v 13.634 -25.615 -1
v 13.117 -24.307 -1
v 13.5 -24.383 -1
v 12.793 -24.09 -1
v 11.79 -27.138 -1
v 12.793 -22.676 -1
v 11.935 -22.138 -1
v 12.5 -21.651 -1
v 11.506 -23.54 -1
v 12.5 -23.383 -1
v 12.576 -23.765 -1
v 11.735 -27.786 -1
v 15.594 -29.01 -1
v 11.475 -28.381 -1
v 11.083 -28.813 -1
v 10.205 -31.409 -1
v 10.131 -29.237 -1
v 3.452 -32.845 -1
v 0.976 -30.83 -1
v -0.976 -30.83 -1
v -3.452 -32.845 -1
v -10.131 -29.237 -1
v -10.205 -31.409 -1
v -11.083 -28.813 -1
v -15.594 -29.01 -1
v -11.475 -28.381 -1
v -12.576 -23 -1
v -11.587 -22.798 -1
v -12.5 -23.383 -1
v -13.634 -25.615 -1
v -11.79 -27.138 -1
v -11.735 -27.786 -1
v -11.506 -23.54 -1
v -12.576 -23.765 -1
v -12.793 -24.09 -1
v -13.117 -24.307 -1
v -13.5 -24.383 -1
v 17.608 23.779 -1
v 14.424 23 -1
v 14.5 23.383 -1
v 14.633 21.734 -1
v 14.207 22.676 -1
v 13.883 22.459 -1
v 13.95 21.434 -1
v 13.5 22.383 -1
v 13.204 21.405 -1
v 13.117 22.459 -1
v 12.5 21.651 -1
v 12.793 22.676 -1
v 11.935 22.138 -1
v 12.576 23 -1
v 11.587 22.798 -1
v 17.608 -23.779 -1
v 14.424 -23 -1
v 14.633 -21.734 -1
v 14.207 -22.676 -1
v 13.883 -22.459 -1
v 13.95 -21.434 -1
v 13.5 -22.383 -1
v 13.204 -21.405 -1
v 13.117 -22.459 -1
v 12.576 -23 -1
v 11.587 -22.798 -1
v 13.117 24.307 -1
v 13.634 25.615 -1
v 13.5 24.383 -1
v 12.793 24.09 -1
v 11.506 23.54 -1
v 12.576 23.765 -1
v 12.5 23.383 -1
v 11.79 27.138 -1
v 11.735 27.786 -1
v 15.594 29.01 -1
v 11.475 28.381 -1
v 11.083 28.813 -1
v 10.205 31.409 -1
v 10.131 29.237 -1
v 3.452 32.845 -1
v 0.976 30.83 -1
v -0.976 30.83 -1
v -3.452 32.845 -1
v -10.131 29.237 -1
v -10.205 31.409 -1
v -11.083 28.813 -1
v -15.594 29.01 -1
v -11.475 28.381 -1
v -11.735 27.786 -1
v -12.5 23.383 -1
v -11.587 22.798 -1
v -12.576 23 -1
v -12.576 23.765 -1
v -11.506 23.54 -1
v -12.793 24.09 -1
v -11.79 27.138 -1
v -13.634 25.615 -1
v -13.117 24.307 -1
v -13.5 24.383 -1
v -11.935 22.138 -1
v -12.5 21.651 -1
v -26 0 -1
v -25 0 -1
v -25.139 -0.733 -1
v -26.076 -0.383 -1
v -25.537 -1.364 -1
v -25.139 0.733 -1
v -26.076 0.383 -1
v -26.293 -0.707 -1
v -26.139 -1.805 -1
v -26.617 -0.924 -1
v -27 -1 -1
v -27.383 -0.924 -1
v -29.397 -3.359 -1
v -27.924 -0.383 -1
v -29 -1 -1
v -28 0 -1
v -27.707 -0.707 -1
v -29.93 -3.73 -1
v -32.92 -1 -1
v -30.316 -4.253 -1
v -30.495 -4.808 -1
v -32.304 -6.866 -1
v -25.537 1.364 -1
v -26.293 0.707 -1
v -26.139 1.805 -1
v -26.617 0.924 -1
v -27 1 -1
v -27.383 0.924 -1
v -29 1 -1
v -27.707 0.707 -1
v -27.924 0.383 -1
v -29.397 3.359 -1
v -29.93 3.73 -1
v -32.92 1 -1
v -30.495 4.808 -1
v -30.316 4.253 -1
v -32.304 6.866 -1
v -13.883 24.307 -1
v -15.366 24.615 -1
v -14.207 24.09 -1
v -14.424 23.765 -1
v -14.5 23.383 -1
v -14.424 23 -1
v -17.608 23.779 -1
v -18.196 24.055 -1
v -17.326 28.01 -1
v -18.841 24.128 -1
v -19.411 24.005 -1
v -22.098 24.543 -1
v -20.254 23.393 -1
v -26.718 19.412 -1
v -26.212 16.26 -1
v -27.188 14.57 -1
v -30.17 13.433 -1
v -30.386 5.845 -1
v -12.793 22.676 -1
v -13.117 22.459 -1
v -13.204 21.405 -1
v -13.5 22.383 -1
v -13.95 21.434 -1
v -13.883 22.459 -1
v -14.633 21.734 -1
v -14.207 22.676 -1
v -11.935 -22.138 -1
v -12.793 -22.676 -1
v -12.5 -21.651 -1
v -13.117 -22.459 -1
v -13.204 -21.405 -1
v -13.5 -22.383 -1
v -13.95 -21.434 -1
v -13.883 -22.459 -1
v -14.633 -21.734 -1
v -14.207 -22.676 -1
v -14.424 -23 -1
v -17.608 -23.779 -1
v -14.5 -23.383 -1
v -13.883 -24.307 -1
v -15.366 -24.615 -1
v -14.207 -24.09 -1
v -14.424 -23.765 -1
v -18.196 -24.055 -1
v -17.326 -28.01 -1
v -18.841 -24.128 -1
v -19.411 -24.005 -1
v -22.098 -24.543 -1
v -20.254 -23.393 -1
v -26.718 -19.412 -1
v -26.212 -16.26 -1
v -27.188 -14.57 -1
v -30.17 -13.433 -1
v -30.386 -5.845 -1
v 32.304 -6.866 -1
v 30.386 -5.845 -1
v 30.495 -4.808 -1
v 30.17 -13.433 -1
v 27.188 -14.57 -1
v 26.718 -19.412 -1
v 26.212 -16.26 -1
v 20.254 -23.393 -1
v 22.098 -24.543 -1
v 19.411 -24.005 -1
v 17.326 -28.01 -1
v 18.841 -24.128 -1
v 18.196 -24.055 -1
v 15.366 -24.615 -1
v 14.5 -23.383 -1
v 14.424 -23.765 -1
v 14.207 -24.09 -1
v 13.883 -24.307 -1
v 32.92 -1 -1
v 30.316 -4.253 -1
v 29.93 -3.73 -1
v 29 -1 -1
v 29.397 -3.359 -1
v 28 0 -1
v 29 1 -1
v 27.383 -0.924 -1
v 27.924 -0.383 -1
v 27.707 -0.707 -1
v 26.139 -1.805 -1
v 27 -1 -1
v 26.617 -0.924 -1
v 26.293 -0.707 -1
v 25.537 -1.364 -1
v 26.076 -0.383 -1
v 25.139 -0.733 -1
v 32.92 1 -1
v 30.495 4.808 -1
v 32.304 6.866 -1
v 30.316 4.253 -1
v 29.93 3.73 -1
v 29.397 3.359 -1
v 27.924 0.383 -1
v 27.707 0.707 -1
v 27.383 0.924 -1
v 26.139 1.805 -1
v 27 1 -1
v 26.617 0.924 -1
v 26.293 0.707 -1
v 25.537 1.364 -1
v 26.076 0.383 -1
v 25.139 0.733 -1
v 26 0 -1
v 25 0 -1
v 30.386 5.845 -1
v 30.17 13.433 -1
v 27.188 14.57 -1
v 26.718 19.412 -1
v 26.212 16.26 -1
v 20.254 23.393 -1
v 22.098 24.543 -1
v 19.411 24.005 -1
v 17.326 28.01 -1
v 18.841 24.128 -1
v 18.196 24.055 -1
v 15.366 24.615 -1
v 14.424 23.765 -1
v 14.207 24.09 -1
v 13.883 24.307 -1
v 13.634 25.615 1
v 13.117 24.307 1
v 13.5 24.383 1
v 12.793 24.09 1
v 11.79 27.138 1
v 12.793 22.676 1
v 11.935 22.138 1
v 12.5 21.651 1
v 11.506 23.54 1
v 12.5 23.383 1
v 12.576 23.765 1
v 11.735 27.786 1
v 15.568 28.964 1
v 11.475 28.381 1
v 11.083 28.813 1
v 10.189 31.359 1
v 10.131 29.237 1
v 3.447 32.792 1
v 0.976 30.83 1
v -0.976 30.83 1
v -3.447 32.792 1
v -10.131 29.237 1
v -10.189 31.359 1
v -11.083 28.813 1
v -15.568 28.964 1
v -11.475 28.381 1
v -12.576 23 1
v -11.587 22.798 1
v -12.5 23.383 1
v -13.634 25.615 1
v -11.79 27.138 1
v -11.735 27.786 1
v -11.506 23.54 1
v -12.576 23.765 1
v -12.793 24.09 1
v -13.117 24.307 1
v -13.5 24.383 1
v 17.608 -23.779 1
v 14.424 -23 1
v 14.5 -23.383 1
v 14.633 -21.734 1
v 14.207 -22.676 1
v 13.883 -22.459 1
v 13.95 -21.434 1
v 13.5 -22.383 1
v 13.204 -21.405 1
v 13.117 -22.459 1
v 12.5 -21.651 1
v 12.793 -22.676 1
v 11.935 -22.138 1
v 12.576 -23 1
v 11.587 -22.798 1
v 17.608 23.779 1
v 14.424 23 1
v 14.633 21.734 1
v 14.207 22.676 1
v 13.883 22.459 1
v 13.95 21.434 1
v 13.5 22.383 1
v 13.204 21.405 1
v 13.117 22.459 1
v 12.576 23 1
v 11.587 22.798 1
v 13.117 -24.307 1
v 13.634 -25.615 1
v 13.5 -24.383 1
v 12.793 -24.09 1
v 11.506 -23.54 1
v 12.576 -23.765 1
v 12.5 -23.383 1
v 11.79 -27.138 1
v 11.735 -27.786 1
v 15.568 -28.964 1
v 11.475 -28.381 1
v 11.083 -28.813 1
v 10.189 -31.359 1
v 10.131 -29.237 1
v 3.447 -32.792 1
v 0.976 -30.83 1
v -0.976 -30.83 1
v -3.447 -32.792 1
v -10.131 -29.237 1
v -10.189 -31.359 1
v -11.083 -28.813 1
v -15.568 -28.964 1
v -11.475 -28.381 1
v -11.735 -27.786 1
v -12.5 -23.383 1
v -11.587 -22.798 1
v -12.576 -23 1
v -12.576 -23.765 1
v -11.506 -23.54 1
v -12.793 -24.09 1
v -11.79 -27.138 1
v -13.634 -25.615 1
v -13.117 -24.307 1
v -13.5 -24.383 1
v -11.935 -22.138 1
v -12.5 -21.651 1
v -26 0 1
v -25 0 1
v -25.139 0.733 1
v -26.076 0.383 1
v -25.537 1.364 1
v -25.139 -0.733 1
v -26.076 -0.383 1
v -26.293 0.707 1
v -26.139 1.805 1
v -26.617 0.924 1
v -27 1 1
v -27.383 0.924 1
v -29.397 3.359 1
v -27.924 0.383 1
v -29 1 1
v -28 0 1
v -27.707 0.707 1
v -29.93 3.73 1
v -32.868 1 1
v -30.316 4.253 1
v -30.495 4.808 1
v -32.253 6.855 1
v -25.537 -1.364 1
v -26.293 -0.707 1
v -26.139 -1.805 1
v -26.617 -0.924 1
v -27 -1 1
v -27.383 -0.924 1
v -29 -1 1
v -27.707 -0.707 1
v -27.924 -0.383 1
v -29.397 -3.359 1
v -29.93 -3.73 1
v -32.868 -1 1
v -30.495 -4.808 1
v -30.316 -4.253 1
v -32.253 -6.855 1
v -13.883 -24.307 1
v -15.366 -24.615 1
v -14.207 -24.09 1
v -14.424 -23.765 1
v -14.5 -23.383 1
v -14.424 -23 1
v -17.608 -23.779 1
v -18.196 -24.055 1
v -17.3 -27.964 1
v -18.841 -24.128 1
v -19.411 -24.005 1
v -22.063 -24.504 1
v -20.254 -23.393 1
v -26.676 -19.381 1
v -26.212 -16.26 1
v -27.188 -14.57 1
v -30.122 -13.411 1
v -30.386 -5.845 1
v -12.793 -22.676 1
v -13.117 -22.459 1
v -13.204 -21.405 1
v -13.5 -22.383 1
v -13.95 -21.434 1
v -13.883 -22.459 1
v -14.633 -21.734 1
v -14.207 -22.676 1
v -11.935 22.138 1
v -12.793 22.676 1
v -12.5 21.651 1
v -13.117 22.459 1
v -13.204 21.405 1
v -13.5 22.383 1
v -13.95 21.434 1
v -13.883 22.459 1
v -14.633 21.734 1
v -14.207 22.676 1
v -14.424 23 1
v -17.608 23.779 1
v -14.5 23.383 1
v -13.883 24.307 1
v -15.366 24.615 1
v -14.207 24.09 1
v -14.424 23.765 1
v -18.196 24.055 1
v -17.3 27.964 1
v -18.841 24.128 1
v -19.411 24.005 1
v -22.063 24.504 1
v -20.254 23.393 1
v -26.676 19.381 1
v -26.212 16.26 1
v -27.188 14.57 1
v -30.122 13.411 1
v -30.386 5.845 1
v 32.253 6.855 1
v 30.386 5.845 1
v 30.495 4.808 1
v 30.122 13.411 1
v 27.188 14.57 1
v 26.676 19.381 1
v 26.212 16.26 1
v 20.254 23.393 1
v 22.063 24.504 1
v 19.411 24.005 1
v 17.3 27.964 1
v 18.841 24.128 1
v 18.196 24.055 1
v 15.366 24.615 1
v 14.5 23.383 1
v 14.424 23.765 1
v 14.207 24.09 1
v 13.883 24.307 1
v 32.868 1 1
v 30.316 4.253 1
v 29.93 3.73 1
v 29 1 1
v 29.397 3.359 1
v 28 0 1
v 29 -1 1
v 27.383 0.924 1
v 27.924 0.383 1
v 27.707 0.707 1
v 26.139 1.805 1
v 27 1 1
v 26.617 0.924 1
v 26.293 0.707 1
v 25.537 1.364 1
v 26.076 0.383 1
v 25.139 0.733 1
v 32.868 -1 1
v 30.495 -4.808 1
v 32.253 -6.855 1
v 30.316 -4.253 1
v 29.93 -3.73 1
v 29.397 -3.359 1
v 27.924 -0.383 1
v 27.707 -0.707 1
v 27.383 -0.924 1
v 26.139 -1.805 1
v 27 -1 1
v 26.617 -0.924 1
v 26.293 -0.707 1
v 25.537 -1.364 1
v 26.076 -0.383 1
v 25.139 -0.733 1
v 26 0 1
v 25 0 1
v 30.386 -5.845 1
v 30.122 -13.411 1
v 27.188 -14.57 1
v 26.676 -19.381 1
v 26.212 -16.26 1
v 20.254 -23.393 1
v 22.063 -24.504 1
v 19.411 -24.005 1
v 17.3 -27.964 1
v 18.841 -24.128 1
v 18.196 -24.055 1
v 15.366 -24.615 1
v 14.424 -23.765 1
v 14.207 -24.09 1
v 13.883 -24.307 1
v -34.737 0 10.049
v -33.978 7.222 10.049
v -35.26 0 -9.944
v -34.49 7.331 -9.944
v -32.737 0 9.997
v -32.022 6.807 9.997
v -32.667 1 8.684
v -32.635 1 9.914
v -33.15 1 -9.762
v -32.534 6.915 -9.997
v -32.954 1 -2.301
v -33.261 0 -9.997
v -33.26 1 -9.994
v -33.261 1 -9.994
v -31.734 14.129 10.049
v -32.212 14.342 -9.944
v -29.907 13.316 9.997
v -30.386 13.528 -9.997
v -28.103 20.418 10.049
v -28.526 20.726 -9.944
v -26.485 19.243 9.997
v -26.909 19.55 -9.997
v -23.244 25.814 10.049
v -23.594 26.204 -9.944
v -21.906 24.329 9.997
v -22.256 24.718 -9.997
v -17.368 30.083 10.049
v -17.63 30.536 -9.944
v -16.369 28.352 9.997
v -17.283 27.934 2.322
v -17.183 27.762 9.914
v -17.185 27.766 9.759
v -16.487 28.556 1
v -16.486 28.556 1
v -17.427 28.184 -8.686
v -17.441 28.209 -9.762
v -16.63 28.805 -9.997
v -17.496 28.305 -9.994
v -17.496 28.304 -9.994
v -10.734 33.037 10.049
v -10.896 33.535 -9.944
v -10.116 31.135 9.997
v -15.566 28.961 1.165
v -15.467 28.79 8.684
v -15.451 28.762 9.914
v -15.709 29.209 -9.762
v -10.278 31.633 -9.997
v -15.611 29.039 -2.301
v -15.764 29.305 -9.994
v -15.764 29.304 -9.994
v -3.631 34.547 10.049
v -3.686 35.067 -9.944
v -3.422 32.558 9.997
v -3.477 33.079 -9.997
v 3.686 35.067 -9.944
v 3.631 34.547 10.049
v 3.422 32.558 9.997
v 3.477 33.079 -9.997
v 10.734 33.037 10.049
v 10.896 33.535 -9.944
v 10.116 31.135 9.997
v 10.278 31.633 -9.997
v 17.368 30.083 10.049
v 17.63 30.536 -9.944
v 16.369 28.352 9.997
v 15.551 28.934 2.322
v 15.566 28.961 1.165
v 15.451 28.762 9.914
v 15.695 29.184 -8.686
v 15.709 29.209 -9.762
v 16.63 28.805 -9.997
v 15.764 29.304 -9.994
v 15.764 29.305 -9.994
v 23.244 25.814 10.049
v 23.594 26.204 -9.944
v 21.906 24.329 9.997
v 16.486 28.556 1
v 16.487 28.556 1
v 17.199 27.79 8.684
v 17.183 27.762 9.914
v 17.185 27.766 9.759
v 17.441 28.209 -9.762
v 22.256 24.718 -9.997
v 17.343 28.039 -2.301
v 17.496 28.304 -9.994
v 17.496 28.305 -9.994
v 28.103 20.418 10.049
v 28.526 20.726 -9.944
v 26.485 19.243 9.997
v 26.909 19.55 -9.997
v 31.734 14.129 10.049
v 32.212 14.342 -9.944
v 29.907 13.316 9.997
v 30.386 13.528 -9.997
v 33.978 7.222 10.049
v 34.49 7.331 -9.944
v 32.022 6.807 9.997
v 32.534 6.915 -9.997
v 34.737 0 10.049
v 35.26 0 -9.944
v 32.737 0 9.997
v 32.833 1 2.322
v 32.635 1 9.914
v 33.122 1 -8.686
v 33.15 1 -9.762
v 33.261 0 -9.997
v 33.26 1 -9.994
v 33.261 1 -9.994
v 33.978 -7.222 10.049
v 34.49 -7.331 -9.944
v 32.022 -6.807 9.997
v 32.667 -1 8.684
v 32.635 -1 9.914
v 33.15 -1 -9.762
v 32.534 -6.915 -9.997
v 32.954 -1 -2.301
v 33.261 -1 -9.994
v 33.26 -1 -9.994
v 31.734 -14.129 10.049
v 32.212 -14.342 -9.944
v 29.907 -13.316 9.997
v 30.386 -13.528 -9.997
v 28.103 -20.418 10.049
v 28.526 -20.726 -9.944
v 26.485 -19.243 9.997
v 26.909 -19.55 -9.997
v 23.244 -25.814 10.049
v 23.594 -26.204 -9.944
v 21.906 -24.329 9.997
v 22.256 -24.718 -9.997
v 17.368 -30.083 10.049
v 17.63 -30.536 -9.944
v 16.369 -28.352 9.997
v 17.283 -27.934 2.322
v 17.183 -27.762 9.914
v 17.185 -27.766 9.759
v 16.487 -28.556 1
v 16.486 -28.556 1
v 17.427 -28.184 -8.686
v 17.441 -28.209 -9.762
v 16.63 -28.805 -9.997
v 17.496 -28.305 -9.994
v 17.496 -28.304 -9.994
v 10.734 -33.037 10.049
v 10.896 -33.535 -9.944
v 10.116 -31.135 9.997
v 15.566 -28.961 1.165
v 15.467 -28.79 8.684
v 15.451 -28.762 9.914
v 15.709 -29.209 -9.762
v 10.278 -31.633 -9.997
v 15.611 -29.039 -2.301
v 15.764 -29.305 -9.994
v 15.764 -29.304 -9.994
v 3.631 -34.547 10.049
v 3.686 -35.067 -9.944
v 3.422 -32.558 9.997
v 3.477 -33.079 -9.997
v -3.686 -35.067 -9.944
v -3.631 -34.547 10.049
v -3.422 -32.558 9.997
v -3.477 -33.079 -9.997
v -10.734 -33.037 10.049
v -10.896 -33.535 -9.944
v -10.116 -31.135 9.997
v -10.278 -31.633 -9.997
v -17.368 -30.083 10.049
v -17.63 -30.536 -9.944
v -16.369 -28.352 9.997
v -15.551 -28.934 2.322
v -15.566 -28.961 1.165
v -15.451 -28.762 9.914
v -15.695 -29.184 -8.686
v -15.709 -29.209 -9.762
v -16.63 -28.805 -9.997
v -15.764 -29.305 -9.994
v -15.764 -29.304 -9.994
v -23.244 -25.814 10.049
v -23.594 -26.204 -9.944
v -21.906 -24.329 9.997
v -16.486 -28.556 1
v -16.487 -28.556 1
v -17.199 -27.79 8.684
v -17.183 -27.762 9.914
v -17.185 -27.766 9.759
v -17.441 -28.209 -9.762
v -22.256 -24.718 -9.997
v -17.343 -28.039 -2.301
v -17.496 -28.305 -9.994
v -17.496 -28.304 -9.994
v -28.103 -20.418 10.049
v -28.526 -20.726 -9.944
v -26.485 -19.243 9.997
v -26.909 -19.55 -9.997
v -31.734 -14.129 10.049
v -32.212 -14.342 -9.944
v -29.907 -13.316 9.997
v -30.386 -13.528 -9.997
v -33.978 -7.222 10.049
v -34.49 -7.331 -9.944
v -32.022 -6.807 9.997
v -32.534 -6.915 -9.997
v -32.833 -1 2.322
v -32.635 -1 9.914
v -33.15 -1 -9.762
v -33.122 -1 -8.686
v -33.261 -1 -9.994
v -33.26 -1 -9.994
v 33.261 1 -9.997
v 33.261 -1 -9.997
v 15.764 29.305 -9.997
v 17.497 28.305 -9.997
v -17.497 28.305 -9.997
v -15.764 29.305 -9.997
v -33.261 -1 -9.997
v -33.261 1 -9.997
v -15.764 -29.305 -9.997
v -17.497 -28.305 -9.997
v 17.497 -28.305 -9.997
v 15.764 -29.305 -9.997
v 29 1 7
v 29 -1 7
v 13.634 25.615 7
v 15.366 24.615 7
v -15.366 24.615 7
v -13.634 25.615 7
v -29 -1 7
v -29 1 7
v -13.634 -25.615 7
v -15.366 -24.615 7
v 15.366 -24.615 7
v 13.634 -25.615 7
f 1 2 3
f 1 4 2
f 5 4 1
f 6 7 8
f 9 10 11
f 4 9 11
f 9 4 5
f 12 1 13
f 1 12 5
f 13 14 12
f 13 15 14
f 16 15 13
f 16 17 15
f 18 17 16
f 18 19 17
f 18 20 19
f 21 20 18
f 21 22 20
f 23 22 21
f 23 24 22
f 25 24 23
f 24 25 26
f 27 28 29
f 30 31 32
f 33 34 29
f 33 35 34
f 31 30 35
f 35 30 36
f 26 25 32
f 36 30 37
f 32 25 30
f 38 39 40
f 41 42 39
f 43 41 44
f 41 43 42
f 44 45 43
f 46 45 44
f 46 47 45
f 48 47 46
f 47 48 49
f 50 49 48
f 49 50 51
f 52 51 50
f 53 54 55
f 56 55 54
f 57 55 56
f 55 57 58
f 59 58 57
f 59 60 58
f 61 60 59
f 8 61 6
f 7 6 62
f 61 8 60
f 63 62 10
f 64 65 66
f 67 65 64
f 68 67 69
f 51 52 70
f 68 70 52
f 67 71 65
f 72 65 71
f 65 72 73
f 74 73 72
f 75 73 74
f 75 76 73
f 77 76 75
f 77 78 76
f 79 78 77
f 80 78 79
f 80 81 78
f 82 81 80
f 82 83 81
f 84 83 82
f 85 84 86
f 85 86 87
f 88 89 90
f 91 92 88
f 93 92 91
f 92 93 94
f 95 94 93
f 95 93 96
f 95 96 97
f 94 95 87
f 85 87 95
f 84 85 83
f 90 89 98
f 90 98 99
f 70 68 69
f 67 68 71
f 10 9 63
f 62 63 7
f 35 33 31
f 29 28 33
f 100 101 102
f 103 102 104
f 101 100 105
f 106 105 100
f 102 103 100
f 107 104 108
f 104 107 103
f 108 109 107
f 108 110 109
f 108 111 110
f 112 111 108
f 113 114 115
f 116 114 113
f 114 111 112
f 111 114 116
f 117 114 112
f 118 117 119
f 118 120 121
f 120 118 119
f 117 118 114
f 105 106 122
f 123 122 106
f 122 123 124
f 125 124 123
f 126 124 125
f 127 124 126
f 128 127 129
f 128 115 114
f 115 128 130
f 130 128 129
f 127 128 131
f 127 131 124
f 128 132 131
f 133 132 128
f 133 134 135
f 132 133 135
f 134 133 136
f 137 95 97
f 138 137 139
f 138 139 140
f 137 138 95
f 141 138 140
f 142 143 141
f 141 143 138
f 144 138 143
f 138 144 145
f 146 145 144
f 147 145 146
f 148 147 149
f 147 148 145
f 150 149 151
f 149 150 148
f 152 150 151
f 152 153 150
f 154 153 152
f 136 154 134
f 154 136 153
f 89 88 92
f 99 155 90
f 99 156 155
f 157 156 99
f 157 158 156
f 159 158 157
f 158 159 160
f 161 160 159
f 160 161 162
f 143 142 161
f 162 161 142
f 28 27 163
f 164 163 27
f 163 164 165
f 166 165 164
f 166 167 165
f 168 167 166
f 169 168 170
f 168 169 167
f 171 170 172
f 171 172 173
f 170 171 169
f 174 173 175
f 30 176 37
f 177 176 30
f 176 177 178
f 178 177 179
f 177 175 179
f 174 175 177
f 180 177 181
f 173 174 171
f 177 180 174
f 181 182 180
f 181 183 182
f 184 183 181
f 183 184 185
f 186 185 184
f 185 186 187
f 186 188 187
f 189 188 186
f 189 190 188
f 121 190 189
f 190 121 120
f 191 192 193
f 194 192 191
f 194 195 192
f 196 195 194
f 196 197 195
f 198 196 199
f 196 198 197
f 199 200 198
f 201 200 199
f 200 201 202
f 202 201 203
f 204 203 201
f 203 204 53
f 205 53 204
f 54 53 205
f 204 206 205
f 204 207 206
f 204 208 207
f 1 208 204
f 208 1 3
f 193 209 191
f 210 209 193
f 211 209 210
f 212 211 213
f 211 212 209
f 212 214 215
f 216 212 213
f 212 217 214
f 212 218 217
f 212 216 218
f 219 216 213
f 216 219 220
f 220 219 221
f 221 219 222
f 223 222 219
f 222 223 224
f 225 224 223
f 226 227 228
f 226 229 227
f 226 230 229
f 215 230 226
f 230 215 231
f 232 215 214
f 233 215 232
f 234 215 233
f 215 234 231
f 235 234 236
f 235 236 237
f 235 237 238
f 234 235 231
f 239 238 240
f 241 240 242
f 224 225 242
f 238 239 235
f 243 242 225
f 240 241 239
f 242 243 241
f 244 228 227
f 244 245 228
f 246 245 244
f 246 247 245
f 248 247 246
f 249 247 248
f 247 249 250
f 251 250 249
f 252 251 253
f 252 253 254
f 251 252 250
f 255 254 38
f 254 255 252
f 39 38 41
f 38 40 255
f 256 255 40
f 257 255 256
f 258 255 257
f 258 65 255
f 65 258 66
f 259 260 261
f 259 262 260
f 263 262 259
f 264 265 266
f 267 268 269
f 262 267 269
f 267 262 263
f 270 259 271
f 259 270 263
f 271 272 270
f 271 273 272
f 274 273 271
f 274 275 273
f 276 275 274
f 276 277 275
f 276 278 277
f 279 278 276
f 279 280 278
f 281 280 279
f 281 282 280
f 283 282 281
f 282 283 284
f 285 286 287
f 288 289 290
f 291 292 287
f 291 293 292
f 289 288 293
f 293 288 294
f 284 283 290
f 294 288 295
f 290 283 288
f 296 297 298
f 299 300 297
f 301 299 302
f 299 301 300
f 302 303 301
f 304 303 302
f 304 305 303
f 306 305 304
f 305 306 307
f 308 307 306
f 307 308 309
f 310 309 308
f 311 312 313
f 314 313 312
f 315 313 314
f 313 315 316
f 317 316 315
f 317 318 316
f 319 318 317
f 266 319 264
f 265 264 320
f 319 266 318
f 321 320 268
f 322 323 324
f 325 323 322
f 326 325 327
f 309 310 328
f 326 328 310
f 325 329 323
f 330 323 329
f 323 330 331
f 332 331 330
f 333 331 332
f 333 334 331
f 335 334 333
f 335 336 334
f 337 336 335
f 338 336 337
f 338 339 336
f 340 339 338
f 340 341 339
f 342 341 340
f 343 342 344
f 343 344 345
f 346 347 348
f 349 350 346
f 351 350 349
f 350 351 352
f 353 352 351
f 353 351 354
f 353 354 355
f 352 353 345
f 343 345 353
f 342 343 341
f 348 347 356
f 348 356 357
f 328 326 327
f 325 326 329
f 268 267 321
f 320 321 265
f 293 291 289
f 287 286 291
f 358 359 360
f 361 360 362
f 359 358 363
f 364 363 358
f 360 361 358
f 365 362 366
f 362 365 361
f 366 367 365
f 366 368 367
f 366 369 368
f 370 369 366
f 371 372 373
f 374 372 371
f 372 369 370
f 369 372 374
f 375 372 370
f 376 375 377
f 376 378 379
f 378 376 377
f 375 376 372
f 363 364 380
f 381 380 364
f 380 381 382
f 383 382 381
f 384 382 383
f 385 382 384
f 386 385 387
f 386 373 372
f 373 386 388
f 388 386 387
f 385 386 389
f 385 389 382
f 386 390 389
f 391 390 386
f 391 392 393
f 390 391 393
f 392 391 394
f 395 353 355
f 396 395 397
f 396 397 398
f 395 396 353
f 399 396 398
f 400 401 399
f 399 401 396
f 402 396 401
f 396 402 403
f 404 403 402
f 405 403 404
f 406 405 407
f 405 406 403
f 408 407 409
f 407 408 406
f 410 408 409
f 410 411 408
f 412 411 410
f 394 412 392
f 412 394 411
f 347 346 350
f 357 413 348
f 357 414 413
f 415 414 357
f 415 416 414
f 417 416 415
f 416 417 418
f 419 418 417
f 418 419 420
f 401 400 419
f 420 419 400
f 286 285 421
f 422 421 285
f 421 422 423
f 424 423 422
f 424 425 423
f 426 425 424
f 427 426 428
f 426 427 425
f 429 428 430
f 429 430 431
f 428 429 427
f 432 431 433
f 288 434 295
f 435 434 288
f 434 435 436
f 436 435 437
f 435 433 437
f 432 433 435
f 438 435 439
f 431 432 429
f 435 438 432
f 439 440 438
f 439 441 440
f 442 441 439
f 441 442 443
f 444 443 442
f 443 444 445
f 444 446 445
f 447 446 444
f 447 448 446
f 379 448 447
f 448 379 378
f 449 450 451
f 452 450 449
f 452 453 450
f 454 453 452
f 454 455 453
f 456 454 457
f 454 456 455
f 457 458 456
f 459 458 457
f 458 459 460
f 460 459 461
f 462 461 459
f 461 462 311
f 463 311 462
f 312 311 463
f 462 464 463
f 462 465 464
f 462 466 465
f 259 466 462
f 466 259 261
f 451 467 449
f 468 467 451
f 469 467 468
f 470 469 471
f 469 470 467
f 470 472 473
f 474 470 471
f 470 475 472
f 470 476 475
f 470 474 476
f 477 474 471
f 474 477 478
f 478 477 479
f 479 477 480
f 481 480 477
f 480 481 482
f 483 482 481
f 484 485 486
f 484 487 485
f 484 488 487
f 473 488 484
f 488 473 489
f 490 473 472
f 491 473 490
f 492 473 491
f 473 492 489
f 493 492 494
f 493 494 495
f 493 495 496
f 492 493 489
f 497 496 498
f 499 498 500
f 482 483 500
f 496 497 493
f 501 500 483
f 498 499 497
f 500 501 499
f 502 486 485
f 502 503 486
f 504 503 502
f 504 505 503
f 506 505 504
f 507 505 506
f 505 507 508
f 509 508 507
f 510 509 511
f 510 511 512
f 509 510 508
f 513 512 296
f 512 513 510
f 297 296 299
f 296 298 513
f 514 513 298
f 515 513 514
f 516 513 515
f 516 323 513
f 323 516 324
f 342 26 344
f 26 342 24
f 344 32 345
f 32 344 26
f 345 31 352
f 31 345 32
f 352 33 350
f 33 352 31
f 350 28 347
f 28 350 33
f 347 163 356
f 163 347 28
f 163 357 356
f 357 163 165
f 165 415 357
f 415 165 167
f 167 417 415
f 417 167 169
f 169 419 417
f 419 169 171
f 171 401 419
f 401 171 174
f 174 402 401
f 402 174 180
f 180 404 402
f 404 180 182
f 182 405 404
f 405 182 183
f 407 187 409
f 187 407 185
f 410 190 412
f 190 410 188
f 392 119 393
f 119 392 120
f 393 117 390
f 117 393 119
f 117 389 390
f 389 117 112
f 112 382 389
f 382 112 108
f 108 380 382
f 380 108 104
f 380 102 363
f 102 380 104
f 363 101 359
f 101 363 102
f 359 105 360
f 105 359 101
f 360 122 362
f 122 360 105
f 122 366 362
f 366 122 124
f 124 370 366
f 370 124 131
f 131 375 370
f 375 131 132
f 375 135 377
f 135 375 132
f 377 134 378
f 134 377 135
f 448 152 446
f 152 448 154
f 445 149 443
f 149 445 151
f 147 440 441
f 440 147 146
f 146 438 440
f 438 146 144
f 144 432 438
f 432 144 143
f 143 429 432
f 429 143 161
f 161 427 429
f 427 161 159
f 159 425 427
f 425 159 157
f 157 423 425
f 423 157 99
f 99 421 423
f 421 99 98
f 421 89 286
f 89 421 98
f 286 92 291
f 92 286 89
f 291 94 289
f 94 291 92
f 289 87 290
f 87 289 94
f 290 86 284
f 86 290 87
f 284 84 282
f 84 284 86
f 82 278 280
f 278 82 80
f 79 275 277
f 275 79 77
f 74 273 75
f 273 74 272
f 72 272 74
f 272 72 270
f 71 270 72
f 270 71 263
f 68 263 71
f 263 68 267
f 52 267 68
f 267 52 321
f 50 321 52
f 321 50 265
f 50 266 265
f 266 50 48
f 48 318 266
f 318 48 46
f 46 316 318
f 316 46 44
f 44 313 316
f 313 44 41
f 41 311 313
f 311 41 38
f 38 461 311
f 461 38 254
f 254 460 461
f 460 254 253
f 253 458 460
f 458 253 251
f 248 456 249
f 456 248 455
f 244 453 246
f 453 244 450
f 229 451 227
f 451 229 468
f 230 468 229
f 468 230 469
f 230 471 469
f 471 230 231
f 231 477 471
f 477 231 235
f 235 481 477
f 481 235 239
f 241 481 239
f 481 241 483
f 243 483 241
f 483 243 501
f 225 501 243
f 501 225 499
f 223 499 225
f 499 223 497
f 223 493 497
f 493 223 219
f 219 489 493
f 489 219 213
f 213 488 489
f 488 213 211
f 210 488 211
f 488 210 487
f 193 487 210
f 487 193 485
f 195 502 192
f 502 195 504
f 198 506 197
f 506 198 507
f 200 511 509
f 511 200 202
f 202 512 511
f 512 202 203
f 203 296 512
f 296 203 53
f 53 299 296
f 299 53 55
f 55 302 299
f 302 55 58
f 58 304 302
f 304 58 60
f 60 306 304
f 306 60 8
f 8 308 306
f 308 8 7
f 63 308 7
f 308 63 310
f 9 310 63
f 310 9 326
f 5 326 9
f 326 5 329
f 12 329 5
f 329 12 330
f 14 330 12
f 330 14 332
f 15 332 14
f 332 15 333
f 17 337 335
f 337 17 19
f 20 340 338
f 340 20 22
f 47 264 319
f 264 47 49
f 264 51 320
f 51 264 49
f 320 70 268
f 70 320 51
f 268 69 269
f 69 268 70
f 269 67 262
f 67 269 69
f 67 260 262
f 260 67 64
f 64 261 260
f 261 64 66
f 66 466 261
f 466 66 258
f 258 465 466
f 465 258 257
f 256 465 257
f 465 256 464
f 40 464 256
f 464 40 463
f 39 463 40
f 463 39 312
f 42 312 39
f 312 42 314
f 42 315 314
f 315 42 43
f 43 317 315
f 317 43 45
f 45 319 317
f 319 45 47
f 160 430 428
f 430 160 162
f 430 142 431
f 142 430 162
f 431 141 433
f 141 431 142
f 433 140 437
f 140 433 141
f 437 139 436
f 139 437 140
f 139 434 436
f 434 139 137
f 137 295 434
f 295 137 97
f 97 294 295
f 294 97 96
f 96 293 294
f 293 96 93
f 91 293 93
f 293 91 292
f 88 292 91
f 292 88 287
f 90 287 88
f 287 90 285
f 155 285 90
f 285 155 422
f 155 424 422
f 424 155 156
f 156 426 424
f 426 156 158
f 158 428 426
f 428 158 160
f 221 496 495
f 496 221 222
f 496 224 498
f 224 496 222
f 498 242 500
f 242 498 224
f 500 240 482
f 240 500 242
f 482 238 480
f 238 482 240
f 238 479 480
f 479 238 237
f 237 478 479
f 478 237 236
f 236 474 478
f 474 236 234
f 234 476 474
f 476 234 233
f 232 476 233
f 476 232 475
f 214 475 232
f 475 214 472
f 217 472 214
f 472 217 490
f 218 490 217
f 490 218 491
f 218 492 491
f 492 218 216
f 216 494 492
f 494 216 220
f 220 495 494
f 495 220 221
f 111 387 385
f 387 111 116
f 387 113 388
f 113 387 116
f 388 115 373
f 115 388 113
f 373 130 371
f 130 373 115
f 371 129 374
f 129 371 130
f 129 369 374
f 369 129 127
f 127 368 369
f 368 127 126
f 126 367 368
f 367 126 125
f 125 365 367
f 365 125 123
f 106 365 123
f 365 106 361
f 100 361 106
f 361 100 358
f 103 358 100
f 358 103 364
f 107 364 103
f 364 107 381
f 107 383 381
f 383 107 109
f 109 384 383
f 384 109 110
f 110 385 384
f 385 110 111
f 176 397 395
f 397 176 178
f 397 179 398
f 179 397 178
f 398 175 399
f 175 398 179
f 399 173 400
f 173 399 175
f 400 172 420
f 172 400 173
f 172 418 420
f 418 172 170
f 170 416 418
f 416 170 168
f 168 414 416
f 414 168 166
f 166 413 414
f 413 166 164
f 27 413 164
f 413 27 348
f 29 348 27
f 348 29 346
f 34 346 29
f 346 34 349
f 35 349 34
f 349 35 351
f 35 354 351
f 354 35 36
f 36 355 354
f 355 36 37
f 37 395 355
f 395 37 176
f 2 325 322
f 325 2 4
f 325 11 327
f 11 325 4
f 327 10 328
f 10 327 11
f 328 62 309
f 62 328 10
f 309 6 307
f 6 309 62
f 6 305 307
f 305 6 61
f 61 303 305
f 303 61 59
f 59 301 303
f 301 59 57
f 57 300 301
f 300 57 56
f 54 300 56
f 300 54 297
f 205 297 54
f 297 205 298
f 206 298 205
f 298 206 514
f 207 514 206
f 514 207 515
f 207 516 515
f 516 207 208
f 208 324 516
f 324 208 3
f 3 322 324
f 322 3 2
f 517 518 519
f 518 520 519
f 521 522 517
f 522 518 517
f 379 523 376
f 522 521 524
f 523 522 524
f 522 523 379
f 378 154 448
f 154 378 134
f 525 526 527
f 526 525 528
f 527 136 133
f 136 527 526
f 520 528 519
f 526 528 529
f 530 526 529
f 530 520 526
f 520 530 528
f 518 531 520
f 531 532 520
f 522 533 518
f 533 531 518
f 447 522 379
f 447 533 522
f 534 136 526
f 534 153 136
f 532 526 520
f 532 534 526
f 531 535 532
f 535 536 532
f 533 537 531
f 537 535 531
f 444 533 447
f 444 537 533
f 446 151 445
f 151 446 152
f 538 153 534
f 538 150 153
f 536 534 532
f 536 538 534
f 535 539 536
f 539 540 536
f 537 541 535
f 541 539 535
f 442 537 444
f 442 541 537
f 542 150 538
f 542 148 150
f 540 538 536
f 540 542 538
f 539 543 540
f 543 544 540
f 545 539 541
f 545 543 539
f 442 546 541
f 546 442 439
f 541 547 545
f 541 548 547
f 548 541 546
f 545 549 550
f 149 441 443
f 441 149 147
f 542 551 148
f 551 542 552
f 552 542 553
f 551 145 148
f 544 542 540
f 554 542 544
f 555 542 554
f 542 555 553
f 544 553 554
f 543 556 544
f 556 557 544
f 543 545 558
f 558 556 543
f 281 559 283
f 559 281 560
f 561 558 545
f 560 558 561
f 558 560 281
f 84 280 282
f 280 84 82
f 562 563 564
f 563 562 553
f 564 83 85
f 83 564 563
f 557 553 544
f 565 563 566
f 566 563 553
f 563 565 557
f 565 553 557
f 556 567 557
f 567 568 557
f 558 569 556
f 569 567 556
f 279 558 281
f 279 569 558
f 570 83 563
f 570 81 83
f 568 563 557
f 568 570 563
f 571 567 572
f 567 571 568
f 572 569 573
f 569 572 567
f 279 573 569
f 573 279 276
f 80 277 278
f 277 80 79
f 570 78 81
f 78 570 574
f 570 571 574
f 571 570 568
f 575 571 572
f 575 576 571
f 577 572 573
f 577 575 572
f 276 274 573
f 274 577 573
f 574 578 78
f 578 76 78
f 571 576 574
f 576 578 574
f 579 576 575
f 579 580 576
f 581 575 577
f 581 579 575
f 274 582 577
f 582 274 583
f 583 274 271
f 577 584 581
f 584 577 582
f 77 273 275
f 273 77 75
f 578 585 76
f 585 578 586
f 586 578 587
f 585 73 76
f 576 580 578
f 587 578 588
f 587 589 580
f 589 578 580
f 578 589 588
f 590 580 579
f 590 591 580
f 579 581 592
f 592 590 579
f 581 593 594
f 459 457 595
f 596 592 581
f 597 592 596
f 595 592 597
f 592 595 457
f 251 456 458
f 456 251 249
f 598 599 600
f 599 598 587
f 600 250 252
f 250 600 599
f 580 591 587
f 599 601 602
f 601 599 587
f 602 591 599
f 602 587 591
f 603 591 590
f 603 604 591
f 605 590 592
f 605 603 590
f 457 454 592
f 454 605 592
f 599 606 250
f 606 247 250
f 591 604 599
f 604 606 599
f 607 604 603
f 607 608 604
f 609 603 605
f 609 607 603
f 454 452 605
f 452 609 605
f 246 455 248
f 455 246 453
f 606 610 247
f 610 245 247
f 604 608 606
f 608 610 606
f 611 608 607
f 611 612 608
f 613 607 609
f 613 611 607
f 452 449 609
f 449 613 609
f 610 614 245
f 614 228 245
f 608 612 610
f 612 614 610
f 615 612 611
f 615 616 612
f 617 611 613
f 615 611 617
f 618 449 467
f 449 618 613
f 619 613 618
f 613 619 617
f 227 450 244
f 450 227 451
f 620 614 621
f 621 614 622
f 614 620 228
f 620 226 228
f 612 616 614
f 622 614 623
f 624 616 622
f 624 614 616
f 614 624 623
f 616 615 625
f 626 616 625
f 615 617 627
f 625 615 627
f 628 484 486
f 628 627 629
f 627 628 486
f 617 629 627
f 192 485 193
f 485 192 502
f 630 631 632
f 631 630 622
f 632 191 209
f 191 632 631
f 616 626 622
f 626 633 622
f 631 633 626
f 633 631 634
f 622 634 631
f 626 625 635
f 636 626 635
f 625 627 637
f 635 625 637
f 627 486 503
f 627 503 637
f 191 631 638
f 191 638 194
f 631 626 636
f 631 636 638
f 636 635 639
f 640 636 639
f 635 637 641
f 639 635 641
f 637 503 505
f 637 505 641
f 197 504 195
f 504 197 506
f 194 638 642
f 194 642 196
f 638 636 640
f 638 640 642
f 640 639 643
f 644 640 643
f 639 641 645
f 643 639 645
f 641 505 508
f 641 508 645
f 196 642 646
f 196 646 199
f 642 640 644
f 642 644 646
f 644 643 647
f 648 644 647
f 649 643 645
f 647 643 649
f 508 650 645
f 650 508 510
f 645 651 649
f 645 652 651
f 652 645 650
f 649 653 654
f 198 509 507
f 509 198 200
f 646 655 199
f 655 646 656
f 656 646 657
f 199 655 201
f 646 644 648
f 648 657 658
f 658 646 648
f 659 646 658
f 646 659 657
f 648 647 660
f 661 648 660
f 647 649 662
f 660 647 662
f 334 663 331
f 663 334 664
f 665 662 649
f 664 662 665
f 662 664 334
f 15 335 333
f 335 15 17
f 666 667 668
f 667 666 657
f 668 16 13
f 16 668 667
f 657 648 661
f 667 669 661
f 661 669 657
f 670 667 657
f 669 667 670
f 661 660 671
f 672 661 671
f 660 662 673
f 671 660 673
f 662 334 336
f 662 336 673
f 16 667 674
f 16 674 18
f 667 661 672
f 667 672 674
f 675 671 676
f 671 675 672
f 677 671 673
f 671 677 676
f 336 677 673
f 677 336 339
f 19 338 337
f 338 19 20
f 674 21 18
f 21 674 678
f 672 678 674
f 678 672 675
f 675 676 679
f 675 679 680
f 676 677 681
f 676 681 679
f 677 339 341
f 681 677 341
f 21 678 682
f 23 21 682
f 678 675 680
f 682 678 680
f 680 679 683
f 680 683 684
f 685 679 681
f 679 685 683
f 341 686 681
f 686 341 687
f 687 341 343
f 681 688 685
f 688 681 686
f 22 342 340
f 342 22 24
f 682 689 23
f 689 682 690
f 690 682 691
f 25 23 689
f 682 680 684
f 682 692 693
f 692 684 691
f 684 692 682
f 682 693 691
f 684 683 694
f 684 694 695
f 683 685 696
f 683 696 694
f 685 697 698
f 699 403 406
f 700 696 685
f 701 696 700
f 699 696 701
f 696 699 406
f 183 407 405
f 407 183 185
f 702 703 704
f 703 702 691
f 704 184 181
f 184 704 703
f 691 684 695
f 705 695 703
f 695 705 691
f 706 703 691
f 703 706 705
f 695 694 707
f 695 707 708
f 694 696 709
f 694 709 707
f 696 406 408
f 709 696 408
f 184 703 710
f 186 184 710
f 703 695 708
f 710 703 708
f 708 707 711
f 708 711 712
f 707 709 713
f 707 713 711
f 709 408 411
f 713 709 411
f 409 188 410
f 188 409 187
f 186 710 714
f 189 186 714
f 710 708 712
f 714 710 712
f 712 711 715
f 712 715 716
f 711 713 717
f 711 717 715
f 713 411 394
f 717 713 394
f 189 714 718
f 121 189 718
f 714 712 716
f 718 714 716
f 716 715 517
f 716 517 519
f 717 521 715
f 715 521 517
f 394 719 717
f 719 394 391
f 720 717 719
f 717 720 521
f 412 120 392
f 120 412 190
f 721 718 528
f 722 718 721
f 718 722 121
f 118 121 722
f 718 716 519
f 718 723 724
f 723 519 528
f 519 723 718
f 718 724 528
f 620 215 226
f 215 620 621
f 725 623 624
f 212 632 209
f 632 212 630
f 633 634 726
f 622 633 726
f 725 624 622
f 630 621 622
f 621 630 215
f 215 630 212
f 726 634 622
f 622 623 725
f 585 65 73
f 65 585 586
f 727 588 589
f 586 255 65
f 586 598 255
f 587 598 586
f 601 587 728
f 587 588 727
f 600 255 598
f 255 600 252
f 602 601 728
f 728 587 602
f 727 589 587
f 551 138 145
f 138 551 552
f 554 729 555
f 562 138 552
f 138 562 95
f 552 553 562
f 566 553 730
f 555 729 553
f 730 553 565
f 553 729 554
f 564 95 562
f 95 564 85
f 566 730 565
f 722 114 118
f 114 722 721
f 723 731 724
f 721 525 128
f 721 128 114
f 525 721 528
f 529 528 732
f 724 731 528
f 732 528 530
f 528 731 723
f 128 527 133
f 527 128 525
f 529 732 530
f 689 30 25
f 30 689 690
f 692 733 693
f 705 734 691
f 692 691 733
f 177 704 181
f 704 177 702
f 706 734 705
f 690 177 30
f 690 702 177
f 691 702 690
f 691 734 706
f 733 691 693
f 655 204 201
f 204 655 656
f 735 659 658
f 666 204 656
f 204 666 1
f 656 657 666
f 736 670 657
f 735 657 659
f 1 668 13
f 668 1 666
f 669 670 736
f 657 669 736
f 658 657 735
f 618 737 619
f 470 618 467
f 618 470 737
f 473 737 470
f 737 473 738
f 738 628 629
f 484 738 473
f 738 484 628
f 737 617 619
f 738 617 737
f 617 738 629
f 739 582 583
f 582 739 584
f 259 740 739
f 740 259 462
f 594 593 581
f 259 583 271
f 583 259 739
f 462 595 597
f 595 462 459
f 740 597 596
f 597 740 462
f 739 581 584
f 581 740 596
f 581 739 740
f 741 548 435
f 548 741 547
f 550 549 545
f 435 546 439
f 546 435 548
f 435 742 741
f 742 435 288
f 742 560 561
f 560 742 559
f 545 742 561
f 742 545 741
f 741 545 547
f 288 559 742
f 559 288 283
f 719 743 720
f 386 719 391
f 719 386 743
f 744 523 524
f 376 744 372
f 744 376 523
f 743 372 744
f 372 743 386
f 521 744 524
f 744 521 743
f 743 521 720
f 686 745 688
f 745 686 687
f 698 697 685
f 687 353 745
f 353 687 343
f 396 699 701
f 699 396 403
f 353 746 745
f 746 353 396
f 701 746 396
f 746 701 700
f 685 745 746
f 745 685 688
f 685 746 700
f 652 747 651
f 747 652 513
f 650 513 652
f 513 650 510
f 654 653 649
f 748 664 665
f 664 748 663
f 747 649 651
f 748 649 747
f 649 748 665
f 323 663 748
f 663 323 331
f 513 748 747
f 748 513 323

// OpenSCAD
// Generated by Parametrix
ca_vaxis_holder_facePetal_0 = [ [ 32.9731, 0.0000 ],[ 30.4632, 12.6183 ],[ 23.3155, 23.3155 ],[ 12.6183, 30.4632 ],[ 0.0000, 32.9731 ],[ -12.6183, 30.4632 ],[ -23.3155, 23.3155 ],[ -30.4632, 12.6183 ],[ -32.9731, 0.0000 ],[ -30.4632, -12.6183 ],[ -23.3155, -23.3155 ],[ -12.6183, -30.4632 ],[ -0.0000, -32.9731 ],[ 12.6183, -30.4632 ],[ 23.3155, -23.3155 ],[ 30.4632, -12.6183 ],[ 32.9731, 0.0000 ] ];
cb_vaxis_holder_facePetal_0 = [  0, 1, 2, 3, 4, 5, 6, 7, 8, 9, 10, 11, 12, 13, 14, 15, 16 ];
ca_vaxis_holder_facePetal_1 = [ [ 29.3974, -3.3593 ],[ 26.1390, -1.8052 ],[ 25.5373, -1.3640 ],[ 25.1392, -0.7330 ],[ 25.0000, -0.0000 ],[ 25.1392, 0.7330 ],[ 25.5373, 1.3640 ],[ 26.1390, 1.8052 ],[ 29.3974, 3.3593 ],[ 29.9305, 3.7303 ],[ 30.3165, 4.2527 ],[ 30.5148, 4.8712 ],[ 30.5045, 5.5206 ],[ 26.8468, 15.5000 ],[ 20.0332, 23.6573 ],[ 19.4760, 23.9910 ],[ 18.8412, 24.1285 ],[ 18.1958, 24.0554 ],[ 17.6079, 23.7793 ],[ 14.6329, 21.7345 ],[ 13.9499, 21.4340 ],[ 13.2044, 21.4047 ],[ 12.5000, 21.6506 ],[ 11.9348, 22.1377 ],[ 11.5874, 22.7980 ],[ 11.5062, 23.5397 ],[ 11.7895, 27.1385 ],[ 11.7347, 27.7857 ],[ 11.4753, 28.3812 ],[ 11.0388, 28.8622 ],[ 10.4712, 29.1780 ],[ 0.0000, 31.0000 ],[ -10.4712, 29.1780 ],[ -11.0388, 28.8622 ],[ -11.4753, 28.3812 ],[ -11.7347, 27.7857 ],[ -11.7895, 27.1385 ],[ -11.5062, 23.5397 ],[ -11.5874, 22.7980 ],[ -11.9348, 22.1377 ],[ -12.5000, 21.6506 ],[ -13.2044, 21.4047 ],[ -13.9499, 21.4340 ],[ -14.6329, 21.7345 ],[ -17.6079, 23.7793 ],[ -18.1958, 24.0554 ],[ -18.8412, 24.1285 ],[ -19.4760, 23.9910 ],[ -20.0332, 23.6573 ],[ -26.8468, 15.5000 ],[ -30.5045, 5.5206 ],[ -30.5148, 4.8712 ],[ -30.3165, 4.2527 ],[ -29.9305, 3.7303 ],[ -29.3974, 3.3593 ],[ -26.1390, 1.8052 ],[ -25.5373, 1.3640 ],[ -25.1392, 0.7330 ],[ -25.0000, 0.0000 ],[ -25.1392, -0.7330 ],[ -25.5373, -1.3640 ],[ -26.1390, -1.8052 ],[ -29.3974, -3.3593 ],[ -29.9305, -3.7303 ],[ -30.3165, -4.2527 ],[ -30.5148, -4.8712 ],[ -30.5045, -5.5206 ],[ -26.8468, -15.5000 ],[ -20.0332, -23.6573 ],[ -19.4760, -23.9910 ],[ -18.8412, -24.1285 ],[ -18.1958, -24.0554 ],[ -17.6079, -23.7793 ],[ -14.6329, -21.7345 ],[ -13.9499, -21.4340 ],[ -13.2044, -21.4047 ],[ -12.5000, -21.6506 ],[ -11.9348, -22.1377 ],[ -11.5874, -22.7980 ],[ -11.5062, -23.5397 ],[ -11.7895, -27.1385 ],[ -11.7347, -27.7857 ],[ -11.4753, -28.3812 ],[ -11.0388, -28.8622 ],[ -10.4712, -29.1780 ],[ 0.0000, -31.0000 ],[ 10.4712, -29.1780 ],[ 11.0388, -28.8622 ],[ 11.4753, -28.3812 ],[ 11.7347, -27.7857 ],[ 11.7895, -27.1385 ],[ 11.5062, -23.5397 ],[ 11.5874, -22.7980 ],[ 11.9348, -22.1377 ],[ 12.5000, -21.6506 ],[ 13.2044, -21.4047 ],[ 13.9499, -21.4340 ],[ 14.6329, -21.7345 ],[ 17.6079, -23.7793 ],[ 18.1958, -24.0554 ],[ 18.8412, -24.1285 ],[ 19.4760, -23.9910 ],[ 20.0332, -23.6573 ],[ 26.8468, -15.5000 ],[ 30.5045, -5.5206 ],[ 30.5148, -4.8712 ],[ 30.3165, -4.2527 ],[ 29.9305, -3.7303 ],[ 29.3974, -3.3593 ] ];
cb_vaxis_holder_facePetal_1 = [  17, 18, 19, 20, 21, 22, 23, 24, 25, 26, 27, 28, 29, 30, 31, 32, 33, 34, 35, 36, 37, 38, 39, 40, 41, 42, 43, 44, 45, 46, 47, 48, 49, 50, 51, 52, 53, 54, 55, 56, 57, 58, 59, 60, 61, 62, 63, 64, 65, 66, 67, 68, 69, 70, 71, 72, 73, 74, 75, 76, 77, 78, 79, 80, 81, 82, 83, 84, 85, 86, 87, 88, 89, 90, 91, 92, 93, 94, 95, 96, 97, 98, 99, 100, 101, 102, 103, 104, 105, 106, 107, 108, 109, 110, 111, 112, 113, 114, 115, 116, 117, 118, 119, 120, 121, 122, 123, 124, 125 ];
ca_vaxis_holder_facePetal_2 = [ [ 28.0000, 0.0000 ],[ 27.9239, 0.3827 ],[ 27.7071, 0.7071 ],[ 27.3827, 0.9239 ],[ 27.0000, 1.0000 ],[ 26.6173, 0.9239 ],[ 26.2929, 0.7071 ],[ 26.0761, 0.3827 ],[ 26.0000, 0.0000 ],[ 26.0761, -0.3827 ],[ 26.2929, -0.7071 ],[ 26.6173, -0.9239 ],[ 27.0000, -1.0000 ],[ 27.3827, -0.9239 ],[ 27.7071, -0.7071 ],[ 27.9239, -0.3827 ],[ 28.0000, 0.0000 ] ];
cb_vaxis_holder_facePetal_2 = [  126, 127, 128, 129, 130, 131, 132, 133, 134, 135, 136, 137, 138, 139, 140, 141, 142 ];
ca_vaxis_holder_facePetal_3 = [ [ 14.5000, 23.3827 ],[ 14.4239, 23.7654 ],[ 14.2071, 24.0898 ],[ 13.8827, 24.3066 ],[ 13.5000, 24.3827 ],[ 13.1173, 24.3066 ],[ 12.7929, 24.0898 ],[ 12.5761, 23.7654 ],[ 12.5000, 23.3827 ],[ 12.5761, 23.0000 ],[ 12.7929, 22.6756 ],[ 13.1173, 22.4588 ],[ 13.5000, 22.3827 ],[ 13.8827, 22.4588 ],[ 14.2071, 22.6756 ],[ 14.4239, 23.0000 ],[ 14.5000, 23.3827 ] ];
cb_vaxis_holder_facePetal_3 = [  143, 144, 145, 146, 147, 148, 149, 150, 151, 152, 153, 154, 155, 156, 157, 158, 159 ];
ca_vaxis_holder_facePetal_4 = [ [ -12.5000, 23.3827 ],[ -12.5761, 23.7654 ],[ -12.7929, 24.0898 ],[ -13.1173, 24.3066 ],[ -13.5000, 24.3827 ],[ -13.8827, 24.3066 ],[ -14.2071, 24.0898 ],[ -14.4239, 23.7654 ],[ -14.5000, 23.3827 ],[ -14.4239, 23.0000 ],[ -14.2071, 22.6756 ],[ -13.8827, 22.4588 ],[ -13.5000, 22.3827 ],[ -13.1173, 22.4588 ],[ -12.7929, 22.6756 ],[ -12.5761, 23.0000 ],[ -12.5000, 23.3827 ] ];
cb_vaxis_holder_facePetal_4 = [  160, 161, 162, 163, 164, 165, 166, 167, 168, 169, 170, 171, 172, 173, 174, 175, 176 ];
ca_vaxis_holder_facePetal_5 = [ [ -26.0000, 0.0000 ],[ -26.0761, 0.3827 ],[ -26.2929, 0.7071 ],[ -26.6173, 0.9239 ],[ -27.0000, 1.0000 ],[ -27.3827, 0.9239 ],[ -27.7071, 0.7071 ],[ -27.9239, 0.3827 ],[ -28.0000, 0.0000 ],[ -27.9239, -0.3827 ],[ -27.7071, -0.7071 ],[ -27.3827, -0.9239 ],[ -27.0000, -1.0000 ],[ -26.6173, -0.9239 ],[ -26.2929, -0.7071 ],[ -26.0761, -0.3827 ],[ -26.0000, 0.0000 ] ];
cb_vaxis_holder_facePetal_5 = [  177, 178, 179, 180, 181, 182, 183, 184, 185, 186, 187, 188, 189, 190, 191, 192, 193 ];
ca_vaxis_holder_facePetal_6 = [ [ -12.5000, -23.3827 ],[ -12.5761, -23.0000 ],[ -12.7929, -22.6756 ],[ -13.1173, -22.4588 ],[ -13.5000, -22.3827 ],[ -13.8827, -22.4588 ],[ -14.2071, -22.6756 ],[ -14.4239, -23.0000 ],[ -14.5000, -23.3827 ],[ -14.4239, -23.7654 ],[ -14.2071, -24.0898 ],[ -13.8827, -24.3066 ],[ -13.5000, -24.3827 ],[ -13.1173, -24.3066 ],[ -12.7929, -24.0898 ],[ -12.5761, -23.7654 ],[ -12.5000, -23.3827 ] ];
cb_vaxis_holder_facePetal_6 = [  194, 195, 196, 197, 198, 199, 200, 201, 202, 203, 204, 205, 206, 207, 208, 209, 210 ];
ca_vaxis_holder_facePetal_7 = [ [ 14.5000, -23.3827 ],[ 14.4239, -23.0000 ],[ 14.2071, -22.6756 ],[ 13.8827, -22.4588 ],[ 13.5000, -22.3827 ],[ 13.1173, -22.4588 ],[ 12.7929, -22.6756 ],[ 12.5761, -23.0000 ],[ 12.5000, -23.3827 ],[ 12.5761, -23.7654 ],[ 12.7929, -24.0898 ],[ 13.1173, -24.3066 ],[ 13.5000, -24.3827 ],[ 13.8827, -24.3066 ],[ 14.2071, -24.0898 ],[ 14.4239, -23.7654 ],[ 14.5000, -23.3827 ] ];
cb_vaxis_holder_facePetal_7 = [  211, 212, 213, 214, 215, 216, 217, 218, 219, 220, 221, 222, 223, 224, 225, 226, 227 ];
a_vaxis_holder_facePetal = concat(ca_vaxis_holder_facePetal_0, ca_vaxis_holder_facePetal_1, ca_vaxis_holder_facePetal_2, ca_vaxis_holder_facePetal_3, ca_vaxis_holder_facePetal_4, ca_vaxis_holder_facePetal_5, ca_vaxis_holder_facePetal_6, ca_vaxis_holder_facePetal_7);
b_vaxis_holder_facePetal = [cb_vaxis_holder_facePetal_0, cb_vaxis_holder_facePetal_1, cb_vaxis_holder_facePetal_2, cb_vaxis_holder_facePetal_3, cb_vaxis_holder_facePetal_4, cb_vaxis_holder_facePetal_5, cb_vaxis_holder_facePetal_6, cb_vaxis_holder_facePetal_7];
ca_vaxis_holder_faceOuter_0 = [ [ 31.0000, -1.0000 ],[ 33.0255, -1.0000 ],[ 33.2611, -9.9966 ],[ 35.2604, -9.9442 ],[ 34.7369, 10.0489 ],[ 32.7375, 9.9966 ],[ 32.9731, 1.0000 ],[ 31.0000, 1.0000 ],[ 31.0000, -1.0000 ] ];
cb_vaxis_holder_faceOuter_0 = [  0, 1, 2, 3, 4, 5, 6, 7, 8 ];
a_vaxis_holder_faceOuter = concat(ca_vaxis_holder_faceOuter_0);
b_vaxis_holder_faceOuter = [cb_vaxis_holder_faceOuter_0];
ca_vaxis_holder_faceButtress1_0 = [ [ 29.0000, -1.0000 ],[ 33.0255, -1.0000 ],[ 33.2611, -9.9966 ],[ 29.0000, -1.0000 ] ];
cb_vaxis_holder_faceButtress1_0 = [  0, 1, 2, 3 ];
a_vaxis_holder_faceButtress1 = concat(ca_vaxis_holder_faceButtress1_0);
b_vaxis_holder_faceButtress1 = [cb_vaxis_holder_faceButtress1_0];
ca_vaxis_holder_faceButtress2_0 = [ [ 29.0000, 1.0000 ],[ 32.9731, 1.0000 ],[ 32.7375, 9.9966 ],[ 29.0000, 7.0000 ],[ 29.0000, 1.0000 ] ];
cb_vaxis_holder_faceButtress2_0 = [  0, 1, 2, 3, 4 ];
a_vaxis_holder_faceButtress2 = concat(ca_vaxis_holder_faceButtress2_0);
b_vaxis_holder_faceButtress2 = [cb_vaxis_holder_faceButtress2_0];

module subpax_vaxis_holder_outer () {
	translate( [ 0, 0, 0 ])
		rotate( [ 0, 0, 0 ])
			   rotate_extrude() polygon(a_vaxis_holder_faceOuter, b_vaxis_holder_faceOuter);
}

module subpax_vaxis_holder_petal () {
	translate( [ 0, 0, -1 ])
		rotate( [ 0, 0, 0 ])
			   linear_extrude(height = 2) polygon(a_vaxis_holder_facePetal, b_vaxis_holder_facePetal);
}

module subpax_vaxis_holder_b1_0 () {
	translate( [ 0, 1, 0 ])
		rotate( [ 90, 0, 0 ])
			   linear_extrude(height = 2) polygon(a_vaxis_holder_faceButtress1, b_vaxis_holder_faceButtress1);
}

module subpax_vaxis_holder_b1_1 () {
	translate( [ -0.8660254037844386, 0.5000000000000001, 0 ])
		rotate( [ 90, 0, 59.99999999999999 ])
			   linear_extrude(height = 2) polygon(a_vaxis_holder_faceButtress1, b_vaxis_holder_faceButtress1);
}

module subpax_vaxis_holder_b1_2 () {
	translate( [ -0.8660254037844387, -0.4999999999999998, 0 ])
		rotate( [ 90, 0, 120.00000000000001 ])
			   linear_extrude(height = 2) polygon(a_vaxis_holder_faceButtress1, b_vaxis_holder_faceButtress1);
}

module subpax_vaxis_holder_b1_3 () {
	translate( [ -1.2246467991473532e-16, -1, 0 ])
		rotate( [ 90, 0, 180 ])
			   linear_extrude(height = 2) polygon(a_vaxis_holder_faceButtress1, b_vaxis_holder_faceButtress1);
}

module subpax_vaxis_holder_b1_4 () {
	translate( [ 0.8660254037844385, -0.5000000000000004, 0 ])
		rotate( [ 90, 0, -120.00000000000004 ])
			   linear_extrude(height = 2) polygon(a_vaxis_holder_faceButtress1, b_vaxis_holder_faceButtress1);
}

module subpax_vaxis_holder_b1_5 () {
	translate( [ 0.866025403784439, 0.49999999999999933, 0 ])
		rotate( [ 90, 0, -60.00000000000004 ])
			   linear_extrude(height = 2) polygon(a_vaxis_holder_faceButtress1, b_vaxis_holder_faceButtress1);
}

module subpax_vaxis_holder_b2_0 () {
	translate( [ 0, 1, 0 ])
		rotate( [ 90, 0, 0 ])
			   linear_extrude(height = 2) polygon(a_vaxis_holder_faceButtress2, b_vaxis_holder_faceButtress2);
}

module subpax_vaxis_holder_b2_1 () {
	translate( [ -0.8660254037844386, 0.5000000000000001, 0 ])
		rotate( [ 90, 0, 59.99999999999999 ])
			   linear_extrude(height = 2) polygon(a_vaxis_holder_faceButtress2, b_vaxis_holder_faceButtress2);
}

module subpax_vaxis_holder_b2_2 () {
	translate( [ -0.8660254037844387, -0.4999999999999998, 0 ])
		rotate( [ 90, 0, 120.00000000000001 ])
			   linear_extrude(height = 2) polygon(a_vaxis_holder_faceButtress2, b_vaxis_holder_faceButtress2);
}

module subpax_vaxis_holder_b2_3 () {
	translate( [ -1.2246467991473532e-16, -1, 0 ])
		rotate( [ 90, 0, 180 ])
			   linear_extrude(height = 2) polygon(a_vaxis_holder_faceButtress2, b_vaxis_holder_faceButtress2);
}

module subpax_vaxis_holder_b2_4 () {
	translate( [ 0.8660254037844385, -0.5000000000000004, 0 ])
		rotate( [ 90, 0, -120.00000000000004 ])
			   linear_extrude(height = 2) polygon(a_vaxis_holder_faceButtress2, b_vaxis_holder_faceButtress2);
}

module subpax_vaxis_holder_b2_5 () {
	translate( [ 0.866025403784439, 0.49999999999999933, 0 ])
		rotate( [ 90, 0, -60.00000000000004 ])
			   linear_extrude(height = 2) polygon(a_vaxis_holder_faceButtress2, b_vaxis_holder_faceButtress2);
}

module pax_vaxis_holder () {
	union () {
		subpax_vaxis_holder_petal();
subpax_vaxis_holder_outer();
subpax_vaxis_holder_b1_0();
subpax_vaxis_holder_b1_1();
subpax_vaxis_holder_b1_2();
subpax_vaxis_holder_b1_3();
subpax_vaxis_holder_b1_4();
subpax_vaxis_holder_b1_5();
subpax_vaxis_holder_b2_0();
subpax_vaxis_holder_b2_1();
subpax_vaxis_holder_b2_2();
subpax_vaxis_holder_b2_3();
subpax_vaxis_holder_b2_4();
subpax_vaxis_holder_b2_5();
	}
}

pax_vaxis_holder();
